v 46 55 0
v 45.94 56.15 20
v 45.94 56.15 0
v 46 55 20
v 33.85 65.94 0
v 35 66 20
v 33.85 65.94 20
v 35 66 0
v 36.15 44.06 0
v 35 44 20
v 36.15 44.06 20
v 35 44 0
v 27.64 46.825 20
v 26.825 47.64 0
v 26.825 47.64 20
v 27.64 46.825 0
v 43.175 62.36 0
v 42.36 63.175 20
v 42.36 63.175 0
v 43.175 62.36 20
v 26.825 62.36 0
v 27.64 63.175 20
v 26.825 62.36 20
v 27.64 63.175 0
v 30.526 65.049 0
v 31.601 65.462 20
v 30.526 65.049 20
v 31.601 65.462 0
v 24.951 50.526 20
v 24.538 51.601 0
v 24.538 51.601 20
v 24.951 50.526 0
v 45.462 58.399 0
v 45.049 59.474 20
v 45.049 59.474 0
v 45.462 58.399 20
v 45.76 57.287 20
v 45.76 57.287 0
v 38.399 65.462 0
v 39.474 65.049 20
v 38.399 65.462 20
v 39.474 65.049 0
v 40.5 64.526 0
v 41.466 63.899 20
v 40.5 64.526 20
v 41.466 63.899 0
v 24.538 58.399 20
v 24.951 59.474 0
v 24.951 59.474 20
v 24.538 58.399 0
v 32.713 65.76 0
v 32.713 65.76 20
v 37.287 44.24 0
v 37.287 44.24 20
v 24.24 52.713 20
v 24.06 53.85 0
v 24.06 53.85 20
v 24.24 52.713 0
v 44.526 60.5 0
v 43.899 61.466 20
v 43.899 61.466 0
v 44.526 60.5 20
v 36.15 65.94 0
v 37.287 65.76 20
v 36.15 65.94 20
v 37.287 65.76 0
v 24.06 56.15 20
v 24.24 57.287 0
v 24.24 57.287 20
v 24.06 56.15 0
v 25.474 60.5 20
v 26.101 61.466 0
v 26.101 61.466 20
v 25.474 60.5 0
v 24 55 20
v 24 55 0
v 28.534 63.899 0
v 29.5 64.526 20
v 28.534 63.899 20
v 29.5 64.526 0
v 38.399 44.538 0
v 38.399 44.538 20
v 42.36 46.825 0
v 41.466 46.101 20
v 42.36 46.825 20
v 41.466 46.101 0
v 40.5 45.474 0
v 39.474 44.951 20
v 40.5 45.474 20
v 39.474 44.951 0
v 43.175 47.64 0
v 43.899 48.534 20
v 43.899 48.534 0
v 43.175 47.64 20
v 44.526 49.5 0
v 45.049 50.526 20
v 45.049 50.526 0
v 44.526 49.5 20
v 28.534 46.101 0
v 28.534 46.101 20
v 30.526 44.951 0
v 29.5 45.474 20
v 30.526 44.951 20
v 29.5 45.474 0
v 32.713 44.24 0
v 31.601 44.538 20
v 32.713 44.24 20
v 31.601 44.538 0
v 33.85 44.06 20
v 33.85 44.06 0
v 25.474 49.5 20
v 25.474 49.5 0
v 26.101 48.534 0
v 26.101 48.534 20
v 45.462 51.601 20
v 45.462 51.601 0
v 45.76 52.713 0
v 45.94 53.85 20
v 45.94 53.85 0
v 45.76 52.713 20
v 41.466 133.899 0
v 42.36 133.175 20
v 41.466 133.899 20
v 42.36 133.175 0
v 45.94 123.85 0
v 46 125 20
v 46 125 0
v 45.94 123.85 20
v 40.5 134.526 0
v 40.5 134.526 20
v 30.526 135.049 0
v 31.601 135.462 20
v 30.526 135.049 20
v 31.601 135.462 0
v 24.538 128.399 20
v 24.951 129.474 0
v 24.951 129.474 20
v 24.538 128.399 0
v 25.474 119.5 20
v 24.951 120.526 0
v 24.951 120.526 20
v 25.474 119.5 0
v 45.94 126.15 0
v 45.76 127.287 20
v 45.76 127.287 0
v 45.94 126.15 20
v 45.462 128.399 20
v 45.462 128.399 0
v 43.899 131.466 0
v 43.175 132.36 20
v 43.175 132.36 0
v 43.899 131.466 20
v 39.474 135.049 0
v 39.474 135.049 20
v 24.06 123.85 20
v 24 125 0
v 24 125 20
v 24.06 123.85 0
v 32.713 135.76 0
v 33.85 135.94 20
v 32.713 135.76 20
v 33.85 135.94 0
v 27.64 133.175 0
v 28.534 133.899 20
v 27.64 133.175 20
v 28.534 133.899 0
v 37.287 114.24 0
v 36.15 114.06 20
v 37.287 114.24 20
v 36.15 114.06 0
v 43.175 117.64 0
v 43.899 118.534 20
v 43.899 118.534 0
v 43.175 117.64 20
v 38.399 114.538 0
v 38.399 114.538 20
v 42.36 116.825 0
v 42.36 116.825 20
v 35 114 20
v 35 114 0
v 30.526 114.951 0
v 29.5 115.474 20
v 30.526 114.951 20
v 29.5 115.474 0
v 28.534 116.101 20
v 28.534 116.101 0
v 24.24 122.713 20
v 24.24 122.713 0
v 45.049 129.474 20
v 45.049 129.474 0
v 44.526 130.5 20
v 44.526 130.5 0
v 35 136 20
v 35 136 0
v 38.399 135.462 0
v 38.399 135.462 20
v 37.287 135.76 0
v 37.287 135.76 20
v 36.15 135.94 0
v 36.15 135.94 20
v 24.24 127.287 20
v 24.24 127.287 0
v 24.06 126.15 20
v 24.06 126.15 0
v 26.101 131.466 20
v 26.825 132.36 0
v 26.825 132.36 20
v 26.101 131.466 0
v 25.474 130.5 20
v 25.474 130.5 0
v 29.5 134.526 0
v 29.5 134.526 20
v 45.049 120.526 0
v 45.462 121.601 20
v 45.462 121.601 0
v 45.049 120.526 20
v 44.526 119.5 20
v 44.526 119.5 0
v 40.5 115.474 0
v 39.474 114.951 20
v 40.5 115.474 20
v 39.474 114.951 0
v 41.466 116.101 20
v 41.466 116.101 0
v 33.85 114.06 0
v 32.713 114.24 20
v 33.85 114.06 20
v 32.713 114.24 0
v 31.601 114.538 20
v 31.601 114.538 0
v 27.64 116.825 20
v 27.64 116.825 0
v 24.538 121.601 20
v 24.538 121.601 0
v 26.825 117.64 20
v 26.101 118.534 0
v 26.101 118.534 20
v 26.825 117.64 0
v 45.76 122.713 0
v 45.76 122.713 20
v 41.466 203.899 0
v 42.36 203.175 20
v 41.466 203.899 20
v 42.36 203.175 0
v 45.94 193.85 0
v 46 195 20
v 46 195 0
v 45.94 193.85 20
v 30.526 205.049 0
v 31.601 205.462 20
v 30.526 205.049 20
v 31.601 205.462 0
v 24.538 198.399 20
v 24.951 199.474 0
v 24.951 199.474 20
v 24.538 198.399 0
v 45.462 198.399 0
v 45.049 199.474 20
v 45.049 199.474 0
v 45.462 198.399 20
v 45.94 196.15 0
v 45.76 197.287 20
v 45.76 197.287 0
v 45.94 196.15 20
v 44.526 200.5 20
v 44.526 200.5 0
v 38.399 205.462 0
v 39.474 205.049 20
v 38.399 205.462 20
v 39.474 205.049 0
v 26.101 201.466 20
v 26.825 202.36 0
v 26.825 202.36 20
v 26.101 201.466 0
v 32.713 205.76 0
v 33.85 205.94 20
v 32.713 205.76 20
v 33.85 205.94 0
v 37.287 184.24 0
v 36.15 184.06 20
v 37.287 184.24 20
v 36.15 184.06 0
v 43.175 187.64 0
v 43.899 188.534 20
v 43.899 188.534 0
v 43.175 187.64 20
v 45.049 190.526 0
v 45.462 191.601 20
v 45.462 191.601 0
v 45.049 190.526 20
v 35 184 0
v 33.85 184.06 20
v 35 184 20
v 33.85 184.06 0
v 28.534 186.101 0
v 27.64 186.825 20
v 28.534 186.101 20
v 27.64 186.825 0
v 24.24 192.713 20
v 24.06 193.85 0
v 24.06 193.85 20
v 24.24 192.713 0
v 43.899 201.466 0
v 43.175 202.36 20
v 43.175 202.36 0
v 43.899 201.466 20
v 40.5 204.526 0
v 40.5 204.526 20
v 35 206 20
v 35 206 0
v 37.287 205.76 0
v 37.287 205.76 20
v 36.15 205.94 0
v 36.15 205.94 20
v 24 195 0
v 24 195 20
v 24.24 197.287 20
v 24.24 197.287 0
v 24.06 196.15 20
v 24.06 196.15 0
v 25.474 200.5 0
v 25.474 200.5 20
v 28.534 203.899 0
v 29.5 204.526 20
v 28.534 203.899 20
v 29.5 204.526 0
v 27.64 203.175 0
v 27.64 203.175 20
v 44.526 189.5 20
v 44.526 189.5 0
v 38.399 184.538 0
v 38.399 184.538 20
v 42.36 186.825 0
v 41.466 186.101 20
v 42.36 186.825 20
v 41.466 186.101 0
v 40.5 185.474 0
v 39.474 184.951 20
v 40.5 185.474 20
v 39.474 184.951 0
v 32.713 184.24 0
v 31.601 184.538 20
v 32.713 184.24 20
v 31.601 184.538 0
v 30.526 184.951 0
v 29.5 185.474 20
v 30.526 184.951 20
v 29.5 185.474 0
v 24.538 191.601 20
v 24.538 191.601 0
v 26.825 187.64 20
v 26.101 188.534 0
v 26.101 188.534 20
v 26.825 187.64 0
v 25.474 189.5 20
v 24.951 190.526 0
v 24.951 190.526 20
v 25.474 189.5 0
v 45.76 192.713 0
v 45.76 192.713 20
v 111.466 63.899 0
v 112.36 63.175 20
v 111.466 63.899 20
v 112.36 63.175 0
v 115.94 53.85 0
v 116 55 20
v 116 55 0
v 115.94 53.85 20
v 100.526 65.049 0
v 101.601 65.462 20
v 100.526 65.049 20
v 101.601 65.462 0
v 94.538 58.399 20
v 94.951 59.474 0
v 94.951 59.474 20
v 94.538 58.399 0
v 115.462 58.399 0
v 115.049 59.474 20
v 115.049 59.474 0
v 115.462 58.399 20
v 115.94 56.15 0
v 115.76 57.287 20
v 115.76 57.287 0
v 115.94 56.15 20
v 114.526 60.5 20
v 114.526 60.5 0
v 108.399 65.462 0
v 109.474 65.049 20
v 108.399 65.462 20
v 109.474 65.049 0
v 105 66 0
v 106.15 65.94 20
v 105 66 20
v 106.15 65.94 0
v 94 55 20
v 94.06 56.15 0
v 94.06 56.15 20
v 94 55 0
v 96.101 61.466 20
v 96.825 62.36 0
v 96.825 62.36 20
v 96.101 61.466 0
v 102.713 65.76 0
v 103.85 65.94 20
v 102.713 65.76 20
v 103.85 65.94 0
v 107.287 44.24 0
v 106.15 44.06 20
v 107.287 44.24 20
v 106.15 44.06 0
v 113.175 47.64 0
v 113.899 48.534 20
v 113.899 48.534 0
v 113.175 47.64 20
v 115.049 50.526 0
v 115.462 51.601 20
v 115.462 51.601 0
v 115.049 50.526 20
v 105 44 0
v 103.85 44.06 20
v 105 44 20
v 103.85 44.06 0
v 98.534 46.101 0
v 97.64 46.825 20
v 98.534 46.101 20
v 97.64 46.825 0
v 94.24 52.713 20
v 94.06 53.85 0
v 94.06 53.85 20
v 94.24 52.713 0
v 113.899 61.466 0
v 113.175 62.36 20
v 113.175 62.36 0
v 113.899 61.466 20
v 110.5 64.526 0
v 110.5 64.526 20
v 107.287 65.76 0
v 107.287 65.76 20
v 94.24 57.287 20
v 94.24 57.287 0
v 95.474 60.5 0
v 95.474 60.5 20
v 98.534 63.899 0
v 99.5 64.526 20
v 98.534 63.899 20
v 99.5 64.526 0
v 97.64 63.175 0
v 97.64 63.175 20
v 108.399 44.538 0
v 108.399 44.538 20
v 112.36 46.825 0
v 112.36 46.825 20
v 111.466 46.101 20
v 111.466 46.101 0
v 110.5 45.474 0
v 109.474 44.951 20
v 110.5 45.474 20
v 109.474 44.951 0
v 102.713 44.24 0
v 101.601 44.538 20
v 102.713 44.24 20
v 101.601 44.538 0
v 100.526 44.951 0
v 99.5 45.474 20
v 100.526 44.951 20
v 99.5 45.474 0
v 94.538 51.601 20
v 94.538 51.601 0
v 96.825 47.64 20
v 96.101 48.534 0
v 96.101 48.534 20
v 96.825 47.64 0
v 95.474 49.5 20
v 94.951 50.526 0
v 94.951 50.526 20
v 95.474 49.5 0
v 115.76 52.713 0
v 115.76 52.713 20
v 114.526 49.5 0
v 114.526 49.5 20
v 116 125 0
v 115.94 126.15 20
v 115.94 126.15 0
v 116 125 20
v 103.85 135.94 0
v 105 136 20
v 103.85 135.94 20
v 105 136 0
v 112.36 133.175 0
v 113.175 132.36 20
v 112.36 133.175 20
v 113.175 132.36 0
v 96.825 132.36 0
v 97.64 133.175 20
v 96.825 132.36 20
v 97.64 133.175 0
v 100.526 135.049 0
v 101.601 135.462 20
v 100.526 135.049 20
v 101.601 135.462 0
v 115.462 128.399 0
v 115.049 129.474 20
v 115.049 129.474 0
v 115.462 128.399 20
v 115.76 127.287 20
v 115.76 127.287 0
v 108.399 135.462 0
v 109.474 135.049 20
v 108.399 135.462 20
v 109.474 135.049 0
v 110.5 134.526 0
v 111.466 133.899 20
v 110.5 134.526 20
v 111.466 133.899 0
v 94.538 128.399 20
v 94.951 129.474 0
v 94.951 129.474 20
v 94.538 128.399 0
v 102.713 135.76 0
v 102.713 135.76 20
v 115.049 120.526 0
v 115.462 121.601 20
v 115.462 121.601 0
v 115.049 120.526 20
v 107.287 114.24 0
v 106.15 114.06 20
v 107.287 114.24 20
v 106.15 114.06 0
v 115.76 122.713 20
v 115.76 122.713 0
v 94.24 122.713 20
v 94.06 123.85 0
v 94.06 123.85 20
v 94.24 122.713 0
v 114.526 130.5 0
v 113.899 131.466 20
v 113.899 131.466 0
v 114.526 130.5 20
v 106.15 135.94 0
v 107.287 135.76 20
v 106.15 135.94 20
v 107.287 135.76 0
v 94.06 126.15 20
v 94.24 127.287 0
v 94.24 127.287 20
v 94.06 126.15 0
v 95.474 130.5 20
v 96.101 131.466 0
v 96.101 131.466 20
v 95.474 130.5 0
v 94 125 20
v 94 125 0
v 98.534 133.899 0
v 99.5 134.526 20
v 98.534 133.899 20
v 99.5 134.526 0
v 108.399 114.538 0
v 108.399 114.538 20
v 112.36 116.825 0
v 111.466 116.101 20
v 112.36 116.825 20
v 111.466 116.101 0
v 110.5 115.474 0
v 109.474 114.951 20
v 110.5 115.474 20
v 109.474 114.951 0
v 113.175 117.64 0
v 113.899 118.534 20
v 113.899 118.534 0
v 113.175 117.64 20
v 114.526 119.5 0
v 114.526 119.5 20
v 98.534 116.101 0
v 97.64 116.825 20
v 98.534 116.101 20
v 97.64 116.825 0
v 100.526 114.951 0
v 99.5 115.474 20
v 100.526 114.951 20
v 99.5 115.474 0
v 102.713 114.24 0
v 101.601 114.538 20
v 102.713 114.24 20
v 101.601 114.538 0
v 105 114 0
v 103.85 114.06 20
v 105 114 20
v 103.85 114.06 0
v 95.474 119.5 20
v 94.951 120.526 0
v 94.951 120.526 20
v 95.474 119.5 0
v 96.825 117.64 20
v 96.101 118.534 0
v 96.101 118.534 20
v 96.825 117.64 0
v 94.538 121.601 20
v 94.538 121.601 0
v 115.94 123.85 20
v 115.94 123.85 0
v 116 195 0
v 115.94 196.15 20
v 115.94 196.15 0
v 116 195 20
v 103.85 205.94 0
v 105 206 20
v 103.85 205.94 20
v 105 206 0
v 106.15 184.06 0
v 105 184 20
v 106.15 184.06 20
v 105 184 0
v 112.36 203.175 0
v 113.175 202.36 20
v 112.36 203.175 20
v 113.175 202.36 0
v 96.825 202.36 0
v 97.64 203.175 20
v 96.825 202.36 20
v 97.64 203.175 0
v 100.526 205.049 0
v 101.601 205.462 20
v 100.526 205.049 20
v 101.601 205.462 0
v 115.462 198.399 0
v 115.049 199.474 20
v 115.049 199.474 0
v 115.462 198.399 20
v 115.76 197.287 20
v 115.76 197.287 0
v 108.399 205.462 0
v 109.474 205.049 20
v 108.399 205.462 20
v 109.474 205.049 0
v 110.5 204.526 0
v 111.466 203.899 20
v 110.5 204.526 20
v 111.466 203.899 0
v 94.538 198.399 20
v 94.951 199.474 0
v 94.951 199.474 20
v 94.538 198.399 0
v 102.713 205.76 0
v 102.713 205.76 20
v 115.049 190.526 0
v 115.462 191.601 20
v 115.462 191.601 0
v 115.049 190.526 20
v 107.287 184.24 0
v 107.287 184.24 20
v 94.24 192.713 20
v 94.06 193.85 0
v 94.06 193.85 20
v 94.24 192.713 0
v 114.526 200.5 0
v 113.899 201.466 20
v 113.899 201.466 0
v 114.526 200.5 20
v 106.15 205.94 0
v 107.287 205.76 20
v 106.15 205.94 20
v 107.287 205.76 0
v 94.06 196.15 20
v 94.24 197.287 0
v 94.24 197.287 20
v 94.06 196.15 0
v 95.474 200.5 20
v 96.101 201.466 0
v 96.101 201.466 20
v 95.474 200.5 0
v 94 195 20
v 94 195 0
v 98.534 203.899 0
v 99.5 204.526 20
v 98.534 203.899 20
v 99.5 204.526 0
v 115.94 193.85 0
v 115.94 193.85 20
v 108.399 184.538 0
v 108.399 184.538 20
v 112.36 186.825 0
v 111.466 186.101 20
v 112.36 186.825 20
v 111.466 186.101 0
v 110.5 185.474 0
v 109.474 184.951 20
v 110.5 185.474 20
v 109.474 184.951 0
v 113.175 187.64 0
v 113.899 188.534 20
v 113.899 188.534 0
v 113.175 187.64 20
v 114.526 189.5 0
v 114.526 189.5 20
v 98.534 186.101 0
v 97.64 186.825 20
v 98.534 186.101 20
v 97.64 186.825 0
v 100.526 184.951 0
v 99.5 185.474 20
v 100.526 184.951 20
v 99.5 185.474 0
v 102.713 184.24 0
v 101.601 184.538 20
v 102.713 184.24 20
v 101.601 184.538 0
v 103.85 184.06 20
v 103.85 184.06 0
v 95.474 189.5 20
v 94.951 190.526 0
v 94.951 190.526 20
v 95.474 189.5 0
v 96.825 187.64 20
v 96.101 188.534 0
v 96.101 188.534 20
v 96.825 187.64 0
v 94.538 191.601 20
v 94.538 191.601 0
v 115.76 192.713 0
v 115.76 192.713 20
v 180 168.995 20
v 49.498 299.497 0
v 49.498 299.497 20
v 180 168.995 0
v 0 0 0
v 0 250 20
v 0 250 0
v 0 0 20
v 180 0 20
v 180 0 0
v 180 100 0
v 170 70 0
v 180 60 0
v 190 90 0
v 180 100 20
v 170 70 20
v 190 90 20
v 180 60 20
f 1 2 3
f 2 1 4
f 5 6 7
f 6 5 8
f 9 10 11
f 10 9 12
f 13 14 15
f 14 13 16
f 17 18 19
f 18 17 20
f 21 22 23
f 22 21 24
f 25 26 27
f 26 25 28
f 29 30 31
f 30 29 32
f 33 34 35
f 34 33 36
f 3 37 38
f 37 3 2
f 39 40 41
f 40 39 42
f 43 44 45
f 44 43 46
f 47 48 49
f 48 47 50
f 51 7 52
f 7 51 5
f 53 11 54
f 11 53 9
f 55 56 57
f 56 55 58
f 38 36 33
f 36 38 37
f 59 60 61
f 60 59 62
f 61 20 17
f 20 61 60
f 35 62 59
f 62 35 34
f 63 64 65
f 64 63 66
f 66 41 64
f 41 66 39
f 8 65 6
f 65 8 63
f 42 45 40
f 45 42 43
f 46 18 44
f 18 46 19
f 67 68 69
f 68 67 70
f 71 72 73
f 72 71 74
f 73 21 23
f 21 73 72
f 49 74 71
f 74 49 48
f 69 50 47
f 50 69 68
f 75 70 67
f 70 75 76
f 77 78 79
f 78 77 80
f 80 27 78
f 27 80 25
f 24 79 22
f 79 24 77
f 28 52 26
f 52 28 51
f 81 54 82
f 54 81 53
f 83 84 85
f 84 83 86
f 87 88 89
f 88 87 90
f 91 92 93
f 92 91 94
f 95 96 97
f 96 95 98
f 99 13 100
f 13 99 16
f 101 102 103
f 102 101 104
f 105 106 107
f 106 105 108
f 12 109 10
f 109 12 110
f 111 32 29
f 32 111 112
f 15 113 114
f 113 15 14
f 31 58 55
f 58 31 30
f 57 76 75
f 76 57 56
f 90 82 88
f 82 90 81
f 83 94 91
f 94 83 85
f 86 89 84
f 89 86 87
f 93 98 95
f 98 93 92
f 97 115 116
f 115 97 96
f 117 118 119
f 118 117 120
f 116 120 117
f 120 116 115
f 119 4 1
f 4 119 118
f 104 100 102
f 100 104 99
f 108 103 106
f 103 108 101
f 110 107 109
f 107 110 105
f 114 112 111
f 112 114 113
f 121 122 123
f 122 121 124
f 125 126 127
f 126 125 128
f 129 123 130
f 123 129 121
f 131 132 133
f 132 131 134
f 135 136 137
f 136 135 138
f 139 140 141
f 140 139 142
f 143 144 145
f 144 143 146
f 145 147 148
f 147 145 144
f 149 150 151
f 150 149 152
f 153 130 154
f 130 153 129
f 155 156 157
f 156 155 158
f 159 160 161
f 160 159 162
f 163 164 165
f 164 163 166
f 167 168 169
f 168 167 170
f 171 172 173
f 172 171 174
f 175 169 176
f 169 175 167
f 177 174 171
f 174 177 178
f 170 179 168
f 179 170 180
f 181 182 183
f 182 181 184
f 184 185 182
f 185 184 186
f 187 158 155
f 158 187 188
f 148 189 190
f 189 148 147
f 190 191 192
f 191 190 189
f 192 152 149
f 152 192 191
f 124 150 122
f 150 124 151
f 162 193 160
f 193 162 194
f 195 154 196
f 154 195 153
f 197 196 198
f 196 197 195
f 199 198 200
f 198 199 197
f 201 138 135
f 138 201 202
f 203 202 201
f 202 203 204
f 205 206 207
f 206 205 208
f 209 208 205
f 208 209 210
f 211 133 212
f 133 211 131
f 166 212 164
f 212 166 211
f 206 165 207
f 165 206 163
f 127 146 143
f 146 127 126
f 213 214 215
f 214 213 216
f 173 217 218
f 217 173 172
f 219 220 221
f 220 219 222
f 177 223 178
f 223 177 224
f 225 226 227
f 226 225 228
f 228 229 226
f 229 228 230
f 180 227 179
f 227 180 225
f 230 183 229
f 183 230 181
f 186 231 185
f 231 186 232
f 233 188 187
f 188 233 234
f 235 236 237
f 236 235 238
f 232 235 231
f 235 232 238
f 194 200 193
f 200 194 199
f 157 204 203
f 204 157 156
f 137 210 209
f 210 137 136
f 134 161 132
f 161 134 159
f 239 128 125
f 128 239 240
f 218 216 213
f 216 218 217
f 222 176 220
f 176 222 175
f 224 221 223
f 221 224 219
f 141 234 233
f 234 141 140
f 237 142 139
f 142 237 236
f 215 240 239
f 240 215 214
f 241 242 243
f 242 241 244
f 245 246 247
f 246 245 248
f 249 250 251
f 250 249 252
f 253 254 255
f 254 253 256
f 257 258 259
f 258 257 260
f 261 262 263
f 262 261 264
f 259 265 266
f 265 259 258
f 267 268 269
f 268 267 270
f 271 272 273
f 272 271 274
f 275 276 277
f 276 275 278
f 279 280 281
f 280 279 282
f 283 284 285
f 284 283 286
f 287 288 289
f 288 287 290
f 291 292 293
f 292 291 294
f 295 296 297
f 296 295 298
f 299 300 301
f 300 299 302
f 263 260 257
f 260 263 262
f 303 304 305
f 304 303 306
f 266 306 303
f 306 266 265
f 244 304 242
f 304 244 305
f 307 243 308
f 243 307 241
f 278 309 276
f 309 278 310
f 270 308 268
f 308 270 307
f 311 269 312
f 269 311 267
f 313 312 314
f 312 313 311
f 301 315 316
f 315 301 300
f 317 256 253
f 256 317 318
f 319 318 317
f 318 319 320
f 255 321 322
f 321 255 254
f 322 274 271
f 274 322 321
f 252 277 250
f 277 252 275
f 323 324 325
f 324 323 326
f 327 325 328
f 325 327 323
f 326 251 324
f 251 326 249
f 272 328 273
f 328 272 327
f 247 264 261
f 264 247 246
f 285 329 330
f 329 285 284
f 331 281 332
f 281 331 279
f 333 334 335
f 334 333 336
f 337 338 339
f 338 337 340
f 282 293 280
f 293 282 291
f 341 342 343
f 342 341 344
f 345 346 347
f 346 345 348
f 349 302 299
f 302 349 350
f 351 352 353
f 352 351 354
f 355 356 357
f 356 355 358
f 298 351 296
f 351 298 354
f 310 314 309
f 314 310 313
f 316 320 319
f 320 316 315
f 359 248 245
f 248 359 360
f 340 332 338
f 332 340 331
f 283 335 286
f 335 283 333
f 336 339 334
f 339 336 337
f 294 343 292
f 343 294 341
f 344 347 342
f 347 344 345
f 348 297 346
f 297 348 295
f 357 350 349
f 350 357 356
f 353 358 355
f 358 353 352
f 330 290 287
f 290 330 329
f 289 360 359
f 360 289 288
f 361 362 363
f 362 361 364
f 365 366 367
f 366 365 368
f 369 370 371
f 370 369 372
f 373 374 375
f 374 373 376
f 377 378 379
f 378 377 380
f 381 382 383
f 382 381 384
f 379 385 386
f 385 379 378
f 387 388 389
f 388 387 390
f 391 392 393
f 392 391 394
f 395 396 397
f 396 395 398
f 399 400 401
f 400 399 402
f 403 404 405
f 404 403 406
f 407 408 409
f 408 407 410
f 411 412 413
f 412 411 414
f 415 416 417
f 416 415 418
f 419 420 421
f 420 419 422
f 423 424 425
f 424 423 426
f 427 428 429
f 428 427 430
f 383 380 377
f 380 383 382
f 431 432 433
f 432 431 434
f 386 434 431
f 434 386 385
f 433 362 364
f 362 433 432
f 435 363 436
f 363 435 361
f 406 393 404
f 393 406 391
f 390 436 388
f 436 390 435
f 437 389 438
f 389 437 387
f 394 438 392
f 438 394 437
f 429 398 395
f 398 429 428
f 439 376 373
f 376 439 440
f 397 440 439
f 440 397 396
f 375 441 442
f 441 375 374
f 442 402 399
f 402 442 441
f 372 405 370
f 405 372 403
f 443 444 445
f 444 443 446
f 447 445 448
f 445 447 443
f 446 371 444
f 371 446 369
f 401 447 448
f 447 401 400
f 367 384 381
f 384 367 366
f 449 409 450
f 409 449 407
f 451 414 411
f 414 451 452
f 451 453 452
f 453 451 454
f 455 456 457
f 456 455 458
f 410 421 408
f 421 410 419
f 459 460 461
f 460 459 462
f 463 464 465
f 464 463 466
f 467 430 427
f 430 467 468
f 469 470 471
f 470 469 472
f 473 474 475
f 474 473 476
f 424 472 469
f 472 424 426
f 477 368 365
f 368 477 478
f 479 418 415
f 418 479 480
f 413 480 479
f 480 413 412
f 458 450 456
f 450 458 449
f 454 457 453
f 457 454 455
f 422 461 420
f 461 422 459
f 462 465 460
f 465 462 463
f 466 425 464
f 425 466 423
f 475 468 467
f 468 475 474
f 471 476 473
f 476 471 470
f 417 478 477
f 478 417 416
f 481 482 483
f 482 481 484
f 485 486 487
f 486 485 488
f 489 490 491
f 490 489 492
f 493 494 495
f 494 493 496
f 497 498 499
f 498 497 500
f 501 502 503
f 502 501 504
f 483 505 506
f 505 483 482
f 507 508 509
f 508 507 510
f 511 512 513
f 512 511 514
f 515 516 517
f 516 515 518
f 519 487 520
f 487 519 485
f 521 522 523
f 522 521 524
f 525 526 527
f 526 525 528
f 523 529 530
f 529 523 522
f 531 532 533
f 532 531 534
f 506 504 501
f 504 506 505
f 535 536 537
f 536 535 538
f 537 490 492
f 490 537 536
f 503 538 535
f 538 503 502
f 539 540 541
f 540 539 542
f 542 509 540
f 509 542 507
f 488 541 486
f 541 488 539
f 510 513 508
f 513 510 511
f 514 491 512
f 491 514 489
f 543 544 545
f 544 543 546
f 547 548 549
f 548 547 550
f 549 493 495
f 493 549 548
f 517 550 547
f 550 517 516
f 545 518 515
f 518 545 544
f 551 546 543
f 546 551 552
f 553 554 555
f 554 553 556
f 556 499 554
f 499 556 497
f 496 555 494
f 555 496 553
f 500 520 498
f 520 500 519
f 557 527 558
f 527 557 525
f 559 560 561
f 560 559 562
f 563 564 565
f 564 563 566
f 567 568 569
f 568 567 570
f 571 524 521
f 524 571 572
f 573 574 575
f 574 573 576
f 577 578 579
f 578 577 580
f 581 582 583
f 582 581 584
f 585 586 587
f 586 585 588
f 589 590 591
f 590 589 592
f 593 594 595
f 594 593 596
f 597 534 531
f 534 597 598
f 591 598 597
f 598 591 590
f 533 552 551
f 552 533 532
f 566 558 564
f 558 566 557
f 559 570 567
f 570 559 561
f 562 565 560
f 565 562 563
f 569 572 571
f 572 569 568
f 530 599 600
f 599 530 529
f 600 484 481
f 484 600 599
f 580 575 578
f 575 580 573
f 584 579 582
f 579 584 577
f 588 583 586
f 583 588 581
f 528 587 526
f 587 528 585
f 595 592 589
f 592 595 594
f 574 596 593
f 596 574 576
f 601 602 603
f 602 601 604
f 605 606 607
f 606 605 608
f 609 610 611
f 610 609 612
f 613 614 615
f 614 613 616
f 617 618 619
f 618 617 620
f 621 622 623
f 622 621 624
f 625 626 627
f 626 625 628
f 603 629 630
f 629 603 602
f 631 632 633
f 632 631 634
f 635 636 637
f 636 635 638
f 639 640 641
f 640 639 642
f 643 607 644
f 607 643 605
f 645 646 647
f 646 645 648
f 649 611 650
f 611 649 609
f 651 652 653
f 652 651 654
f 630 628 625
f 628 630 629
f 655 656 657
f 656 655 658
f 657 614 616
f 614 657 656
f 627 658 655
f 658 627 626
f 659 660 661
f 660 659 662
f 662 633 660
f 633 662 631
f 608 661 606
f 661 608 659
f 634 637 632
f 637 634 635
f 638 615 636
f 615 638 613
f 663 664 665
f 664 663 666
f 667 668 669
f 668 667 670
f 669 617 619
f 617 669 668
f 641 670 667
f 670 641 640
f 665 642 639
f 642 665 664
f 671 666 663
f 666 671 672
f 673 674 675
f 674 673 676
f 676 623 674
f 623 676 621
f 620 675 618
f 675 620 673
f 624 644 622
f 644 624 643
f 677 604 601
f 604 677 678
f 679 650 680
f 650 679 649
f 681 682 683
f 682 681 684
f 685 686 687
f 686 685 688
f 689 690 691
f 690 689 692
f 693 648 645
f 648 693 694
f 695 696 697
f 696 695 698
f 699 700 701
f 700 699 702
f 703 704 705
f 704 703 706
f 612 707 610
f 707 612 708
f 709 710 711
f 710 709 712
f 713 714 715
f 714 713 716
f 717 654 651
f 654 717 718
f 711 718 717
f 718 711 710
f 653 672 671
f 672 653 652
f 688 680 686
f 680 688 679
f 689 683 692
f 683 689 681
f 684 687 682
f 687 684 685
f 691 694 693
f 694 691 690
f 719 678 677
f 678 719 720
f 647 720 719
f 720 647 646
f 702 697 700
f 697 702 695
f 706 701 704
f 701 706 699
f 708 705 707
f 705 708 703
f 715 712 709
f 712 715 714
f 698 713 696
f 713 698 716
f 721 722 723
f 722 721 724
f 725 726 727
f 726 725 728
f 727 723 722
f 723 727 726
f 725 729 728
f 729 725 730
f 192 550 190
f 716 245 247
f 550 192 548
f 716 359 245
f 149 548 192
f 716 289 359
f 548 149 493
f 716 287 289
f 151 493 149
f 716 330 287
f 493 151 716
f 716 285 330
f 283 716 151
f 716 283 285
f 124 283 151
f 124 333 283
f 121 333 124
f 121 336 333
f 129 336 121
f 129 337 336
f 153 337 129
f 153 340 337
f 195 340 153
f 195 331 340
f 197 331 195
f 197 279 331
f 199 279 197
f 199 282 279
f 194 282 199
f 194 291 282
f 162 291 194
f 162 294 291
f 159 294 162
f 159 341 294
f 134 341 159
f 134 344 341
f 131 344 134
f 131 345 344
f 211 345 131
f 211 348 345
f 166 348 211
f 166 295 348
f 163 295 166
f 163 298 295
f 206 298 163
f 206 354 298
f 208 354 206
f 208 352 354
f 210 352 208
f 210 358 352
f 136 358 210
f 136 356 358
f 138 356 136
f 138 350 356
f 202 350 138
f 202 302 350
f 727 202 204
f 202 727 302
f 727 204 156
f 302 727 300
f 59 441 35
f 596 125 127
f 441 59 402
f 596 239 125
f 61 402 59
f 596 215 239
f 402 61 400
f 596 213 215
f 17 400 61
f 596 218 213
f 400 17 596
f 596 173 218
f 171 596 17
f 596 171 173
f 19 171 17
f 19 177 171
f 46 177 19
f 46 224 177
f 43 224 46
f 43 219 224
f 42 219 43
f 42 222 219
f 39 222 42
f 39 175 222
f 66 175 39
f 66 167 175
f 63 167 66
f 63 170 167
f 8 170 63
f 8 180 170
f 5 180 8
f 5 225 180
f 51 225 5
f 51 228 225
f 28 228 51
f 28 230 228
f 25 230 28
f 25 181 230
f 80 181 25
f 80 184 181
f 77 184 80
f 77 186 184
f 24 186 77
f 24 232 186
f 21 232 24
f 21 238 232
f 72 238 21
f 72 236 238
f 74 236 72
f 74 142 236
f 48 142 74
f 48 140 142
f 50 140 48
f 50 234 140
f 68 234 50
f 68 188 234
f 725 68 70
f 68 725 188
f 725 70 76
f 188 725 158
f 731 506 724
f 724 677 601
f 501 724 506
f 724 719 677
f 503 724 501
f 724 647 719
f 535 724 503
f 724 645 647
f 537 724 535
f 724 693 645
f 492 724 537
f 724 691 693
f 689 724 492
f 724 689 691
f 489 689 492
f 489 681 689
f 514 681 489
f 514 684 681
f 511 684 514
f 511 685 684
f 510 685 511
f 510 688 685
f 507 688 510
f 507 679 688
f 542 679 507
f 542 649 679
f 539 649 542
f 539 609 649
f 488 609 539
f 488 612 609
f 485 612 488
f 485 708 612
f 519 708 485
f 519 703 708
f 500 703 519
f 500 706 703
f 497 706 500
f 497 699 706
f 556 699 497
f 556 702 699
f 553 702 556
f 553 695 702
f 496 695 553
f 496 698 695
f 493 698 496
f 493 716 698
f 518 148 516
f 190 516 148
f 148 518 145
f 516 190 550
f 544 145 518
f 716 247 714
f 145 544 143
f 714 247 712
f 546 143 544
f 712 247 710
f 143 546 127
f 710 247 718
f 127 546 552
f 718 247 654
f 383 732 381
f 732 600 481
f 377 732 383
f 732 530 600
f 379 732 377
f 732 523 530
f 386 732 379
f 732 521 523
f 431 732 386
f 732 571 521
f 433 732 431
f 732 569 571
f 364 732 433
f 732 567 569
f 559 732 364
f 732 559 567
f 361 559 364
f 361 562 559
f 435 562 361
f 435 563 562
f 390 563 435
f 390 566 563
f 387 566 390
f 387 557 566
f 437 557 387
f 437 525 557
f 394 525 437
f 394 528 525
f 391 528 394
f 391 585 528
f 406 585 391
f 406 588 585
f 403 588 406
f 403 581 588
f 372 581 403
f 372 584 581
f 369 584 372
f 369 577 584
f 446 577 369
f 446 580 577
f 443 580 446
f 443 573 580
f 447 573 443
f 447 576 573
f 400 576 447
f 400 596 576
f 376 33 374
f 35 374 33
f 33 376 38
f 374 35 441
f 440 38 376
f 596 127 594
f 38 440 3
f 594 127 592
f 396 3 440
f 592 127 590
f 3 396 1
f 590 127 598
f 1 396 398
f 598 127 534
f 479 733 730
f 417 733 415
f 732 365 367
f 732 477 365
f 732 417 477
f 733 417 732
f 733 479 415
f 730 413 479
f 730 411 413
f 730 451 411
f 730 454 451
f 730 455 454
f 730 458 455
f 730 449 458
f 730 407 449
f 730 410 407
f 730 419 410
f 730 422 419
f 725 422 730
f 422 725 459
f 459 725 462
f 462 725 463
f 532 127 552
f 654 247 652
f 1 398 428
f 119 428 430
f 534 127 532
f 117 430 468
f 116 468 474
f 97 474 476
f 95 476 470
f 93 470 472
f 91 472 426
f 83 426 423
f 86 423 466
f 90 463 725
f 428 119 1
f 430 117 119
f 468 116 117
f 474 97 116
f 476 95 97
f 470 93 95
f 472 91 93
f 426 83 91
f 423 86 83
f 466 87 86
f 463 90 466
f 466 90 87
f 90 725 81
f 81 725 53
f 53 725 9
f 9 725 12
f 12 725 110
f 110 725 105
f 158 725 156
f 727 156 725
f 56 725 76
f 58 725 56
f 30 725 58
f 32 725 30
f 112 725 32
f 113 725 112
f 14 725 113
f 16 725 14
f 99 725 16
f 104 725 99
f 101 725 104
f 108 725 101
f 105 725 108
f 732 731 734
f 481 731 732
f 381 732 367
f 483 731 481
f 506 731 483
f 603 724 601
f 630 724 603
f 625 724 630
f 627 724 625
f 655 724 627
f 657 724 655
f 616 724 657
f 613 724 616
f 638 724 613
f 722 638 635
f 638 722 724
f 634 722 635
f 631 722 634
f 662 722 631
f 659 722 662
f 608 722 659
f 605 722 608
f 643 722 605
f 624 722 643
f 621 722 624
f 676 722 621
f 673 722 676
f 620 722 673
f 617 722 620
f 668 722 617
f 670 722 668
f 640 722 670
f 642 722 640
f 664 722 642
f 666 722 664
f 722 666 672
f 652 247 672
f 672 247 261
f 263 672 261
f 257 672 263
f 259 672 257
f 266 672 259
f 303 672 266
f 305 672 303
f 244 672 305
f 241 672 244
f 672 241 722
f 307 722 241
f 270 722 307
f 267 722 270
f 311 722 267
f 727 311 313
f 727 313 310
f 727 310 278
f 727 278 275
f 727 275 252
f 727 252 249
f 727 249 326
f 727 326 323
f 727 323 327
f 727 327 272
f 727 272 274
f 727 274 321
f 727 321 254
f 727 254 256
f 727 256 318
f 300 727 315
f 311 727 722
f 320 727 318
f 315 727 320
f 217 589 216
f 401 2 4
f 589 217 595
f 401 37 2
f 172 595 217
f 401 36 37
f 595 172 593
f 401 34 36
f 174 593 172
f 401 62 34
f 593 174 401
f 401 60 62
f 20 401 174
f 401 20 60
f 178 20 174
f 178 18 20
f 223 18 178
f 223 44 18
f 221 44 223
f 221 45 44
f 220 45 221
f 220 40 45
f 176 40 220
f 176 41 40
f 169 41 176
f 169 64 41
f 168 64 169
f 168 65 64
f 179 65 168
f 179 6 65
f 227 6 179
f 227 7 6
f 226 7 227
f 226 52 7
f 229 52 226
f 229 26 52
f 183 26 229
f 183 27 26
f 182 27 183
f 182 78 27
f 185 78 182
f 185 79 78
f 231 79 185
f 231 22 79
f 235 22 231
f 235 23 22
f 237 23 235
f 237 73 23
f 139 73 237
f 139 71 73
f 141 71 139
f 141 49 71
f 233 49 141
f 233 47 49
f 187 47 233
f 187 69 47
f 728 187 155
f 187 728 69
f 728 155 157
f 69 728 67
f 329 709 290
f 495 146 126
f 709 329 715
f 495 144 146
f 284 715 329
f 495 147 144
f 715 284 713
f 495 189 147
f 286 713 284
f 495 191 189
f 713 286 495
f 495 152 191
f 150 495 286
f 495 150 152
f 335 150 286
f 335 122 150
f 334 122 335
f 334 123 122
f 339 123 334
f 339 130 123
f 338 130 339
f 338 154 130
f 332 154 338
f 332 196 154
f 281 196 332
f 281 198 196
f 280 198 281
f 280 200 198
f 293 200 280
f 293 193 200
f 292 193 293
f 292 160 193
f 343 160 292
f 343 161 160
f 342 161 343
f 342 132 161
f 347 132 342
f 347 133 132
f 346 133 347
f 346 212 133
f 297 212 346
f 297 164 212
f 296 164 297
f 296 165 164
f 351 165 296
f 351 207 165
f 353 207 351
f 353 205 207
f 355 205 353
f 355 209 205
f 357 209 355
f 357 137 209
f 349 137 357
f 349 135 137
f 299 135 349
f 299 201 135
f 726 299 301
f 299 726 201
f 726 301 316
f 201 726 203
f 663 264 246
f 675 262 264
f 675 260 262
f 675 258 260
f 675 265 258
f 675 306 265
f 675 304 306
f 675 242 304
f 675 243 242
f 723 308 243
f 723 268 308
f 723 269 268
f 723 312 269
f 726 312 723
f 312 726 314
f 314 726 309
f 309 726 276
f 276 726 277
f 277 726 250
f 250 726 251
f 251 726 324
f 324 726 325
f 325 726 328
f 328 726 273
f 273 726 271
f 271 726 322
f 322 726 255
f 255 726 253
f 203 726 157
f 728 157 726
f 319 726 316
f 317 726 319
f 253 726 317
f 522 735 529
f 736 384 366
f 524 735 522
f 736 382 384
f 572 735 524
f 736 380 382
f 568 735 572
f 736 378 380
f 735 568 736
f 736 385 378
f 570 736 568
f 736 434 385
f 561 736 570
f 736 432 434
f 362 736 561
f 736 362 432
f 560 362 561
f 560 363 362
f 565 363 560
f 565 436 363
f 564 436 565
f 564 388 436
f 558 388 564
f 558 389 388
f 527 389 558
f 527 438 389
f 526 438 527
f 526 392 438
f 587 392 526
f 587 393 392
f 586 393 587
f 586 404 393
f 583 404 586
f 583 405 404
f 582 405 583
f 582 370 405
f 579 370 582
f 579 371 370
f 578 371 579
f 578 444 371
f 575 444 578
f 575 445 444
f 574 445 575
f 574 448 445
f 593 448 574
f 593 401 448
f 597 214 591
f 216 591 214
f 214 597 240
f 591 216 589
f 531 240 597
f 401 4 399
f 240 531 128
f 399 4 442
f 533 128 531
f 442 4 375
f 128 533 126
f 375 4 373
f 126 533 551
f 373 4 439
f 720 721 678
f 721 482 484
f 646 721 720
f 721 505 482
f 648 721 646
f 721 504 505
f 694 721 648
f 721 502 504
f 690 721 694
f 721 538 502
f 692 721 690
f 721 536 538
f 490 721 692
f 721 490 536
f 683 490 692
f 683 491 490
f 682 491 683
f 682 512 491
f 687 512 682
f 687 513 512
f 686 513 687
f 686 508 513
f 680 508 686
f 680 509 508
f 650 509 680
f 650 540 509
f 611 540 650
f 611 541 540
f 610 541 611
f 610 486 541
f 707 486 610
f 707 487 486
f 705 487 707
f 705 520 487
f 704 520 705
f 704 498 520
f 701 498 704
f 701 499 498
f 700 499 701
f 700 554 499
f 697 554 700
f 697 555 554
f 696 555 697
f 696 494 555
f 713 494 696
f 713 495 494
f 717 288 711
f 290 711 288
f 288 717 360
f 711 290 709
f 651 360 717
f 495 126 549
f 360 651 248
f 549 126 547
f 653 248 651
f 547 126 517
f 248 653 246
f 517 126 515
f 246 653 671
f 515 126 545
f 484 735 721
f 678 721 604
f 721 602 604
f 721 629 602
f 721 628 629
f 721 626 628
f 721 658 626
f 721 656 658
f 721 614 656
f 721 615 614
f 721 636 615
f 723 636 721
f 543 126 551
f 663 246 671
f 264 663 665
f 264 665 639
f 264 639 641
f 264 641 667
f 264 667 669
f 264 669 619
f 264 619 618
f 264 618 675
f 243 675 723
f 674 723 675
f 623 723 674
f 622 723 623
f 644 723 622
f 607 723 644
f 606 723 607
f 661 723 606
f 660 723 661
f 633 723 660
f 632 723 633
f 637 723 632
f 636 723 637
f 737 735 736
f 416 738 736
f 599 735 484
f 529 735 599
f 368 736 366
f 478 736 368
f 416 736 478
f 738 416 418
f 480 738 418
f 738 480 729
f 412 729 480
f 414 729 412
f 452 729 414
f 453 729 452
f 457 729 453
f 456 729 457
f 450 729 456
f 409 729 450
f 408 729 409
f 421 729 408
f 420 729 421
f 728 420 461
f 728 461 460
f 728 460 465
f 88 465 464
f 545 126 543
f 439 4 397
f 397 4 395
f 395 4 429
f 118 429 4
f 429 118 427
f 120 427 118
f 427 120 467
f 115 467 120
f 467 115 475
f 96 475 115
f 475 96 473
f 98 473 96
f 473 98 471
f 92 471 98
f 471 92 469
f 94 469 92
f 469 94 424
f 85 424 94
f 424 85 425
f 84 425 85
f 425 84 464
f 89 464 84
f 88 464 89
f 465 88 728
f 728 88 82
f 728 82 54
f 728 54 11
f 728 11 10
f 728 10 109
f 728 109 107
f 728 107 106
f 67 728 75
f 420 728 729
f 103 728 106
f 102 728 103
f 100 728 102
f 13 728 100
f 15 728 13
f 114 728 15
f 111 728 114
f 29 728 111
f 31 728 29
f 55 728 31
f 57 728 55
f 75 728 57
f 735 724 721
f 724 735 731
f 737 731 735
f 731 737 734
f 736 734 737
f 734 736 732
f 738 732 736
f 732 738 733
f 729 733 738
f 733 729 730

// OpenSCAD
// file: params.scad
// Global Parameters for Dimon brace

// The HSS is a HSS 127x127x13 G40.20

HSS_d = 127.0;
HSS_b = 127.0;
HSS_t = 12.7;
HSS_l = 250.0;    //length of HSS for model

// The tongue plate (welded into slot in HSS)

TP_t = 20.0;
// TP_w = 280.0;  // width of plate
TP_w = 250.0;
TP_l = 250.0;   // total length
TP_lw = 100.0;  // length of welded portion

// cover plate (welded on HSS)

CP_t = 10;
CP_w = 60;
CP_l = 200;
CP_setback = 10;
CP_lw = CP_l;

// welds

TP_D = 8;
CP_D = 6;

// Bolts

BOLT_d = 20;    // diameter
BOLT_hd = BOLT_d + 2;    // hole diameter
// BOLT_s = 75;             // longitudinal spacing (pitch)
// BOLT_g = 75;             // transverse spacing (gauge)
BOLT_s = 70;             // longitudinal spacing (pitch)
BOLT_g = 70;             // transverse spacing (gauge)
BOLT_NG = 3;             // number of gauge lines (across)
BOLT_NT = 2;             // number of transverse lines
// BOLT_e = 40;		 // end distance
BOLT_e = 35;		 // end distance

// Gusset plate

GP_w = TP_w;
GP_t = TP_t;
// GP_w2 = 110;
GP_w2 = 70;
GP_theta = 45;
GP_l1 = GP_w2 + GP_w*cos(GP_theta);   // dist out to furthest pt
GP_l = GP_l1*tan(GP_theta) + GP_w*sin(GP_theta);
// GP_gap = 10;		// gap to tongue plate
GP_gap = 5;		// gap to tongue plate

// Lap Plate

LP_t = 10;
LP_w = 230;
LP_l = 2*(BOLT_NT-1)*BOLT_s + 4*BOLT_e + GP_gap;


// misc.

$fn = 60;       // number of sides for poly approx to circles
// main file
include <params.scad>;

echo(GP_w,GP_w2,GP_l1,GP_l);

render() {
    pts = [[0,0],
    	   [GP_l1/sin(GP_theta),0],
	   [GP_w2*sin(GP_theta),GP_l*sin(GP_theta)],
	   [0,GP_w]];
    difference() { // change to intersection to see only tip
        difference() {
            linear_extrude(GP_t) polygon(pts);
            for (i = [0:BOLT_NT-1]) {        // the holes
                x = BOLT_e + i*BOLT_s;
                for (j = [0:BOLT_NG-1]) {
                    y = GP_w/2 - (BOLT_NG-1)*BOLT_g/2 + j*BOLT_g;
                    translate([x,y,-1]) cylinder(d=BOLT_hd,h=GP_t+2);
                }
            }
        }
        // mask out the tip, otherwise too large to print
        translate([180,0,-1]) linear_extrude(50)
            polygon([[0,0],[200,0],[200,200],[0,200],[0,100],[10,90],[-10,70],[0,60]]);
    }

}
